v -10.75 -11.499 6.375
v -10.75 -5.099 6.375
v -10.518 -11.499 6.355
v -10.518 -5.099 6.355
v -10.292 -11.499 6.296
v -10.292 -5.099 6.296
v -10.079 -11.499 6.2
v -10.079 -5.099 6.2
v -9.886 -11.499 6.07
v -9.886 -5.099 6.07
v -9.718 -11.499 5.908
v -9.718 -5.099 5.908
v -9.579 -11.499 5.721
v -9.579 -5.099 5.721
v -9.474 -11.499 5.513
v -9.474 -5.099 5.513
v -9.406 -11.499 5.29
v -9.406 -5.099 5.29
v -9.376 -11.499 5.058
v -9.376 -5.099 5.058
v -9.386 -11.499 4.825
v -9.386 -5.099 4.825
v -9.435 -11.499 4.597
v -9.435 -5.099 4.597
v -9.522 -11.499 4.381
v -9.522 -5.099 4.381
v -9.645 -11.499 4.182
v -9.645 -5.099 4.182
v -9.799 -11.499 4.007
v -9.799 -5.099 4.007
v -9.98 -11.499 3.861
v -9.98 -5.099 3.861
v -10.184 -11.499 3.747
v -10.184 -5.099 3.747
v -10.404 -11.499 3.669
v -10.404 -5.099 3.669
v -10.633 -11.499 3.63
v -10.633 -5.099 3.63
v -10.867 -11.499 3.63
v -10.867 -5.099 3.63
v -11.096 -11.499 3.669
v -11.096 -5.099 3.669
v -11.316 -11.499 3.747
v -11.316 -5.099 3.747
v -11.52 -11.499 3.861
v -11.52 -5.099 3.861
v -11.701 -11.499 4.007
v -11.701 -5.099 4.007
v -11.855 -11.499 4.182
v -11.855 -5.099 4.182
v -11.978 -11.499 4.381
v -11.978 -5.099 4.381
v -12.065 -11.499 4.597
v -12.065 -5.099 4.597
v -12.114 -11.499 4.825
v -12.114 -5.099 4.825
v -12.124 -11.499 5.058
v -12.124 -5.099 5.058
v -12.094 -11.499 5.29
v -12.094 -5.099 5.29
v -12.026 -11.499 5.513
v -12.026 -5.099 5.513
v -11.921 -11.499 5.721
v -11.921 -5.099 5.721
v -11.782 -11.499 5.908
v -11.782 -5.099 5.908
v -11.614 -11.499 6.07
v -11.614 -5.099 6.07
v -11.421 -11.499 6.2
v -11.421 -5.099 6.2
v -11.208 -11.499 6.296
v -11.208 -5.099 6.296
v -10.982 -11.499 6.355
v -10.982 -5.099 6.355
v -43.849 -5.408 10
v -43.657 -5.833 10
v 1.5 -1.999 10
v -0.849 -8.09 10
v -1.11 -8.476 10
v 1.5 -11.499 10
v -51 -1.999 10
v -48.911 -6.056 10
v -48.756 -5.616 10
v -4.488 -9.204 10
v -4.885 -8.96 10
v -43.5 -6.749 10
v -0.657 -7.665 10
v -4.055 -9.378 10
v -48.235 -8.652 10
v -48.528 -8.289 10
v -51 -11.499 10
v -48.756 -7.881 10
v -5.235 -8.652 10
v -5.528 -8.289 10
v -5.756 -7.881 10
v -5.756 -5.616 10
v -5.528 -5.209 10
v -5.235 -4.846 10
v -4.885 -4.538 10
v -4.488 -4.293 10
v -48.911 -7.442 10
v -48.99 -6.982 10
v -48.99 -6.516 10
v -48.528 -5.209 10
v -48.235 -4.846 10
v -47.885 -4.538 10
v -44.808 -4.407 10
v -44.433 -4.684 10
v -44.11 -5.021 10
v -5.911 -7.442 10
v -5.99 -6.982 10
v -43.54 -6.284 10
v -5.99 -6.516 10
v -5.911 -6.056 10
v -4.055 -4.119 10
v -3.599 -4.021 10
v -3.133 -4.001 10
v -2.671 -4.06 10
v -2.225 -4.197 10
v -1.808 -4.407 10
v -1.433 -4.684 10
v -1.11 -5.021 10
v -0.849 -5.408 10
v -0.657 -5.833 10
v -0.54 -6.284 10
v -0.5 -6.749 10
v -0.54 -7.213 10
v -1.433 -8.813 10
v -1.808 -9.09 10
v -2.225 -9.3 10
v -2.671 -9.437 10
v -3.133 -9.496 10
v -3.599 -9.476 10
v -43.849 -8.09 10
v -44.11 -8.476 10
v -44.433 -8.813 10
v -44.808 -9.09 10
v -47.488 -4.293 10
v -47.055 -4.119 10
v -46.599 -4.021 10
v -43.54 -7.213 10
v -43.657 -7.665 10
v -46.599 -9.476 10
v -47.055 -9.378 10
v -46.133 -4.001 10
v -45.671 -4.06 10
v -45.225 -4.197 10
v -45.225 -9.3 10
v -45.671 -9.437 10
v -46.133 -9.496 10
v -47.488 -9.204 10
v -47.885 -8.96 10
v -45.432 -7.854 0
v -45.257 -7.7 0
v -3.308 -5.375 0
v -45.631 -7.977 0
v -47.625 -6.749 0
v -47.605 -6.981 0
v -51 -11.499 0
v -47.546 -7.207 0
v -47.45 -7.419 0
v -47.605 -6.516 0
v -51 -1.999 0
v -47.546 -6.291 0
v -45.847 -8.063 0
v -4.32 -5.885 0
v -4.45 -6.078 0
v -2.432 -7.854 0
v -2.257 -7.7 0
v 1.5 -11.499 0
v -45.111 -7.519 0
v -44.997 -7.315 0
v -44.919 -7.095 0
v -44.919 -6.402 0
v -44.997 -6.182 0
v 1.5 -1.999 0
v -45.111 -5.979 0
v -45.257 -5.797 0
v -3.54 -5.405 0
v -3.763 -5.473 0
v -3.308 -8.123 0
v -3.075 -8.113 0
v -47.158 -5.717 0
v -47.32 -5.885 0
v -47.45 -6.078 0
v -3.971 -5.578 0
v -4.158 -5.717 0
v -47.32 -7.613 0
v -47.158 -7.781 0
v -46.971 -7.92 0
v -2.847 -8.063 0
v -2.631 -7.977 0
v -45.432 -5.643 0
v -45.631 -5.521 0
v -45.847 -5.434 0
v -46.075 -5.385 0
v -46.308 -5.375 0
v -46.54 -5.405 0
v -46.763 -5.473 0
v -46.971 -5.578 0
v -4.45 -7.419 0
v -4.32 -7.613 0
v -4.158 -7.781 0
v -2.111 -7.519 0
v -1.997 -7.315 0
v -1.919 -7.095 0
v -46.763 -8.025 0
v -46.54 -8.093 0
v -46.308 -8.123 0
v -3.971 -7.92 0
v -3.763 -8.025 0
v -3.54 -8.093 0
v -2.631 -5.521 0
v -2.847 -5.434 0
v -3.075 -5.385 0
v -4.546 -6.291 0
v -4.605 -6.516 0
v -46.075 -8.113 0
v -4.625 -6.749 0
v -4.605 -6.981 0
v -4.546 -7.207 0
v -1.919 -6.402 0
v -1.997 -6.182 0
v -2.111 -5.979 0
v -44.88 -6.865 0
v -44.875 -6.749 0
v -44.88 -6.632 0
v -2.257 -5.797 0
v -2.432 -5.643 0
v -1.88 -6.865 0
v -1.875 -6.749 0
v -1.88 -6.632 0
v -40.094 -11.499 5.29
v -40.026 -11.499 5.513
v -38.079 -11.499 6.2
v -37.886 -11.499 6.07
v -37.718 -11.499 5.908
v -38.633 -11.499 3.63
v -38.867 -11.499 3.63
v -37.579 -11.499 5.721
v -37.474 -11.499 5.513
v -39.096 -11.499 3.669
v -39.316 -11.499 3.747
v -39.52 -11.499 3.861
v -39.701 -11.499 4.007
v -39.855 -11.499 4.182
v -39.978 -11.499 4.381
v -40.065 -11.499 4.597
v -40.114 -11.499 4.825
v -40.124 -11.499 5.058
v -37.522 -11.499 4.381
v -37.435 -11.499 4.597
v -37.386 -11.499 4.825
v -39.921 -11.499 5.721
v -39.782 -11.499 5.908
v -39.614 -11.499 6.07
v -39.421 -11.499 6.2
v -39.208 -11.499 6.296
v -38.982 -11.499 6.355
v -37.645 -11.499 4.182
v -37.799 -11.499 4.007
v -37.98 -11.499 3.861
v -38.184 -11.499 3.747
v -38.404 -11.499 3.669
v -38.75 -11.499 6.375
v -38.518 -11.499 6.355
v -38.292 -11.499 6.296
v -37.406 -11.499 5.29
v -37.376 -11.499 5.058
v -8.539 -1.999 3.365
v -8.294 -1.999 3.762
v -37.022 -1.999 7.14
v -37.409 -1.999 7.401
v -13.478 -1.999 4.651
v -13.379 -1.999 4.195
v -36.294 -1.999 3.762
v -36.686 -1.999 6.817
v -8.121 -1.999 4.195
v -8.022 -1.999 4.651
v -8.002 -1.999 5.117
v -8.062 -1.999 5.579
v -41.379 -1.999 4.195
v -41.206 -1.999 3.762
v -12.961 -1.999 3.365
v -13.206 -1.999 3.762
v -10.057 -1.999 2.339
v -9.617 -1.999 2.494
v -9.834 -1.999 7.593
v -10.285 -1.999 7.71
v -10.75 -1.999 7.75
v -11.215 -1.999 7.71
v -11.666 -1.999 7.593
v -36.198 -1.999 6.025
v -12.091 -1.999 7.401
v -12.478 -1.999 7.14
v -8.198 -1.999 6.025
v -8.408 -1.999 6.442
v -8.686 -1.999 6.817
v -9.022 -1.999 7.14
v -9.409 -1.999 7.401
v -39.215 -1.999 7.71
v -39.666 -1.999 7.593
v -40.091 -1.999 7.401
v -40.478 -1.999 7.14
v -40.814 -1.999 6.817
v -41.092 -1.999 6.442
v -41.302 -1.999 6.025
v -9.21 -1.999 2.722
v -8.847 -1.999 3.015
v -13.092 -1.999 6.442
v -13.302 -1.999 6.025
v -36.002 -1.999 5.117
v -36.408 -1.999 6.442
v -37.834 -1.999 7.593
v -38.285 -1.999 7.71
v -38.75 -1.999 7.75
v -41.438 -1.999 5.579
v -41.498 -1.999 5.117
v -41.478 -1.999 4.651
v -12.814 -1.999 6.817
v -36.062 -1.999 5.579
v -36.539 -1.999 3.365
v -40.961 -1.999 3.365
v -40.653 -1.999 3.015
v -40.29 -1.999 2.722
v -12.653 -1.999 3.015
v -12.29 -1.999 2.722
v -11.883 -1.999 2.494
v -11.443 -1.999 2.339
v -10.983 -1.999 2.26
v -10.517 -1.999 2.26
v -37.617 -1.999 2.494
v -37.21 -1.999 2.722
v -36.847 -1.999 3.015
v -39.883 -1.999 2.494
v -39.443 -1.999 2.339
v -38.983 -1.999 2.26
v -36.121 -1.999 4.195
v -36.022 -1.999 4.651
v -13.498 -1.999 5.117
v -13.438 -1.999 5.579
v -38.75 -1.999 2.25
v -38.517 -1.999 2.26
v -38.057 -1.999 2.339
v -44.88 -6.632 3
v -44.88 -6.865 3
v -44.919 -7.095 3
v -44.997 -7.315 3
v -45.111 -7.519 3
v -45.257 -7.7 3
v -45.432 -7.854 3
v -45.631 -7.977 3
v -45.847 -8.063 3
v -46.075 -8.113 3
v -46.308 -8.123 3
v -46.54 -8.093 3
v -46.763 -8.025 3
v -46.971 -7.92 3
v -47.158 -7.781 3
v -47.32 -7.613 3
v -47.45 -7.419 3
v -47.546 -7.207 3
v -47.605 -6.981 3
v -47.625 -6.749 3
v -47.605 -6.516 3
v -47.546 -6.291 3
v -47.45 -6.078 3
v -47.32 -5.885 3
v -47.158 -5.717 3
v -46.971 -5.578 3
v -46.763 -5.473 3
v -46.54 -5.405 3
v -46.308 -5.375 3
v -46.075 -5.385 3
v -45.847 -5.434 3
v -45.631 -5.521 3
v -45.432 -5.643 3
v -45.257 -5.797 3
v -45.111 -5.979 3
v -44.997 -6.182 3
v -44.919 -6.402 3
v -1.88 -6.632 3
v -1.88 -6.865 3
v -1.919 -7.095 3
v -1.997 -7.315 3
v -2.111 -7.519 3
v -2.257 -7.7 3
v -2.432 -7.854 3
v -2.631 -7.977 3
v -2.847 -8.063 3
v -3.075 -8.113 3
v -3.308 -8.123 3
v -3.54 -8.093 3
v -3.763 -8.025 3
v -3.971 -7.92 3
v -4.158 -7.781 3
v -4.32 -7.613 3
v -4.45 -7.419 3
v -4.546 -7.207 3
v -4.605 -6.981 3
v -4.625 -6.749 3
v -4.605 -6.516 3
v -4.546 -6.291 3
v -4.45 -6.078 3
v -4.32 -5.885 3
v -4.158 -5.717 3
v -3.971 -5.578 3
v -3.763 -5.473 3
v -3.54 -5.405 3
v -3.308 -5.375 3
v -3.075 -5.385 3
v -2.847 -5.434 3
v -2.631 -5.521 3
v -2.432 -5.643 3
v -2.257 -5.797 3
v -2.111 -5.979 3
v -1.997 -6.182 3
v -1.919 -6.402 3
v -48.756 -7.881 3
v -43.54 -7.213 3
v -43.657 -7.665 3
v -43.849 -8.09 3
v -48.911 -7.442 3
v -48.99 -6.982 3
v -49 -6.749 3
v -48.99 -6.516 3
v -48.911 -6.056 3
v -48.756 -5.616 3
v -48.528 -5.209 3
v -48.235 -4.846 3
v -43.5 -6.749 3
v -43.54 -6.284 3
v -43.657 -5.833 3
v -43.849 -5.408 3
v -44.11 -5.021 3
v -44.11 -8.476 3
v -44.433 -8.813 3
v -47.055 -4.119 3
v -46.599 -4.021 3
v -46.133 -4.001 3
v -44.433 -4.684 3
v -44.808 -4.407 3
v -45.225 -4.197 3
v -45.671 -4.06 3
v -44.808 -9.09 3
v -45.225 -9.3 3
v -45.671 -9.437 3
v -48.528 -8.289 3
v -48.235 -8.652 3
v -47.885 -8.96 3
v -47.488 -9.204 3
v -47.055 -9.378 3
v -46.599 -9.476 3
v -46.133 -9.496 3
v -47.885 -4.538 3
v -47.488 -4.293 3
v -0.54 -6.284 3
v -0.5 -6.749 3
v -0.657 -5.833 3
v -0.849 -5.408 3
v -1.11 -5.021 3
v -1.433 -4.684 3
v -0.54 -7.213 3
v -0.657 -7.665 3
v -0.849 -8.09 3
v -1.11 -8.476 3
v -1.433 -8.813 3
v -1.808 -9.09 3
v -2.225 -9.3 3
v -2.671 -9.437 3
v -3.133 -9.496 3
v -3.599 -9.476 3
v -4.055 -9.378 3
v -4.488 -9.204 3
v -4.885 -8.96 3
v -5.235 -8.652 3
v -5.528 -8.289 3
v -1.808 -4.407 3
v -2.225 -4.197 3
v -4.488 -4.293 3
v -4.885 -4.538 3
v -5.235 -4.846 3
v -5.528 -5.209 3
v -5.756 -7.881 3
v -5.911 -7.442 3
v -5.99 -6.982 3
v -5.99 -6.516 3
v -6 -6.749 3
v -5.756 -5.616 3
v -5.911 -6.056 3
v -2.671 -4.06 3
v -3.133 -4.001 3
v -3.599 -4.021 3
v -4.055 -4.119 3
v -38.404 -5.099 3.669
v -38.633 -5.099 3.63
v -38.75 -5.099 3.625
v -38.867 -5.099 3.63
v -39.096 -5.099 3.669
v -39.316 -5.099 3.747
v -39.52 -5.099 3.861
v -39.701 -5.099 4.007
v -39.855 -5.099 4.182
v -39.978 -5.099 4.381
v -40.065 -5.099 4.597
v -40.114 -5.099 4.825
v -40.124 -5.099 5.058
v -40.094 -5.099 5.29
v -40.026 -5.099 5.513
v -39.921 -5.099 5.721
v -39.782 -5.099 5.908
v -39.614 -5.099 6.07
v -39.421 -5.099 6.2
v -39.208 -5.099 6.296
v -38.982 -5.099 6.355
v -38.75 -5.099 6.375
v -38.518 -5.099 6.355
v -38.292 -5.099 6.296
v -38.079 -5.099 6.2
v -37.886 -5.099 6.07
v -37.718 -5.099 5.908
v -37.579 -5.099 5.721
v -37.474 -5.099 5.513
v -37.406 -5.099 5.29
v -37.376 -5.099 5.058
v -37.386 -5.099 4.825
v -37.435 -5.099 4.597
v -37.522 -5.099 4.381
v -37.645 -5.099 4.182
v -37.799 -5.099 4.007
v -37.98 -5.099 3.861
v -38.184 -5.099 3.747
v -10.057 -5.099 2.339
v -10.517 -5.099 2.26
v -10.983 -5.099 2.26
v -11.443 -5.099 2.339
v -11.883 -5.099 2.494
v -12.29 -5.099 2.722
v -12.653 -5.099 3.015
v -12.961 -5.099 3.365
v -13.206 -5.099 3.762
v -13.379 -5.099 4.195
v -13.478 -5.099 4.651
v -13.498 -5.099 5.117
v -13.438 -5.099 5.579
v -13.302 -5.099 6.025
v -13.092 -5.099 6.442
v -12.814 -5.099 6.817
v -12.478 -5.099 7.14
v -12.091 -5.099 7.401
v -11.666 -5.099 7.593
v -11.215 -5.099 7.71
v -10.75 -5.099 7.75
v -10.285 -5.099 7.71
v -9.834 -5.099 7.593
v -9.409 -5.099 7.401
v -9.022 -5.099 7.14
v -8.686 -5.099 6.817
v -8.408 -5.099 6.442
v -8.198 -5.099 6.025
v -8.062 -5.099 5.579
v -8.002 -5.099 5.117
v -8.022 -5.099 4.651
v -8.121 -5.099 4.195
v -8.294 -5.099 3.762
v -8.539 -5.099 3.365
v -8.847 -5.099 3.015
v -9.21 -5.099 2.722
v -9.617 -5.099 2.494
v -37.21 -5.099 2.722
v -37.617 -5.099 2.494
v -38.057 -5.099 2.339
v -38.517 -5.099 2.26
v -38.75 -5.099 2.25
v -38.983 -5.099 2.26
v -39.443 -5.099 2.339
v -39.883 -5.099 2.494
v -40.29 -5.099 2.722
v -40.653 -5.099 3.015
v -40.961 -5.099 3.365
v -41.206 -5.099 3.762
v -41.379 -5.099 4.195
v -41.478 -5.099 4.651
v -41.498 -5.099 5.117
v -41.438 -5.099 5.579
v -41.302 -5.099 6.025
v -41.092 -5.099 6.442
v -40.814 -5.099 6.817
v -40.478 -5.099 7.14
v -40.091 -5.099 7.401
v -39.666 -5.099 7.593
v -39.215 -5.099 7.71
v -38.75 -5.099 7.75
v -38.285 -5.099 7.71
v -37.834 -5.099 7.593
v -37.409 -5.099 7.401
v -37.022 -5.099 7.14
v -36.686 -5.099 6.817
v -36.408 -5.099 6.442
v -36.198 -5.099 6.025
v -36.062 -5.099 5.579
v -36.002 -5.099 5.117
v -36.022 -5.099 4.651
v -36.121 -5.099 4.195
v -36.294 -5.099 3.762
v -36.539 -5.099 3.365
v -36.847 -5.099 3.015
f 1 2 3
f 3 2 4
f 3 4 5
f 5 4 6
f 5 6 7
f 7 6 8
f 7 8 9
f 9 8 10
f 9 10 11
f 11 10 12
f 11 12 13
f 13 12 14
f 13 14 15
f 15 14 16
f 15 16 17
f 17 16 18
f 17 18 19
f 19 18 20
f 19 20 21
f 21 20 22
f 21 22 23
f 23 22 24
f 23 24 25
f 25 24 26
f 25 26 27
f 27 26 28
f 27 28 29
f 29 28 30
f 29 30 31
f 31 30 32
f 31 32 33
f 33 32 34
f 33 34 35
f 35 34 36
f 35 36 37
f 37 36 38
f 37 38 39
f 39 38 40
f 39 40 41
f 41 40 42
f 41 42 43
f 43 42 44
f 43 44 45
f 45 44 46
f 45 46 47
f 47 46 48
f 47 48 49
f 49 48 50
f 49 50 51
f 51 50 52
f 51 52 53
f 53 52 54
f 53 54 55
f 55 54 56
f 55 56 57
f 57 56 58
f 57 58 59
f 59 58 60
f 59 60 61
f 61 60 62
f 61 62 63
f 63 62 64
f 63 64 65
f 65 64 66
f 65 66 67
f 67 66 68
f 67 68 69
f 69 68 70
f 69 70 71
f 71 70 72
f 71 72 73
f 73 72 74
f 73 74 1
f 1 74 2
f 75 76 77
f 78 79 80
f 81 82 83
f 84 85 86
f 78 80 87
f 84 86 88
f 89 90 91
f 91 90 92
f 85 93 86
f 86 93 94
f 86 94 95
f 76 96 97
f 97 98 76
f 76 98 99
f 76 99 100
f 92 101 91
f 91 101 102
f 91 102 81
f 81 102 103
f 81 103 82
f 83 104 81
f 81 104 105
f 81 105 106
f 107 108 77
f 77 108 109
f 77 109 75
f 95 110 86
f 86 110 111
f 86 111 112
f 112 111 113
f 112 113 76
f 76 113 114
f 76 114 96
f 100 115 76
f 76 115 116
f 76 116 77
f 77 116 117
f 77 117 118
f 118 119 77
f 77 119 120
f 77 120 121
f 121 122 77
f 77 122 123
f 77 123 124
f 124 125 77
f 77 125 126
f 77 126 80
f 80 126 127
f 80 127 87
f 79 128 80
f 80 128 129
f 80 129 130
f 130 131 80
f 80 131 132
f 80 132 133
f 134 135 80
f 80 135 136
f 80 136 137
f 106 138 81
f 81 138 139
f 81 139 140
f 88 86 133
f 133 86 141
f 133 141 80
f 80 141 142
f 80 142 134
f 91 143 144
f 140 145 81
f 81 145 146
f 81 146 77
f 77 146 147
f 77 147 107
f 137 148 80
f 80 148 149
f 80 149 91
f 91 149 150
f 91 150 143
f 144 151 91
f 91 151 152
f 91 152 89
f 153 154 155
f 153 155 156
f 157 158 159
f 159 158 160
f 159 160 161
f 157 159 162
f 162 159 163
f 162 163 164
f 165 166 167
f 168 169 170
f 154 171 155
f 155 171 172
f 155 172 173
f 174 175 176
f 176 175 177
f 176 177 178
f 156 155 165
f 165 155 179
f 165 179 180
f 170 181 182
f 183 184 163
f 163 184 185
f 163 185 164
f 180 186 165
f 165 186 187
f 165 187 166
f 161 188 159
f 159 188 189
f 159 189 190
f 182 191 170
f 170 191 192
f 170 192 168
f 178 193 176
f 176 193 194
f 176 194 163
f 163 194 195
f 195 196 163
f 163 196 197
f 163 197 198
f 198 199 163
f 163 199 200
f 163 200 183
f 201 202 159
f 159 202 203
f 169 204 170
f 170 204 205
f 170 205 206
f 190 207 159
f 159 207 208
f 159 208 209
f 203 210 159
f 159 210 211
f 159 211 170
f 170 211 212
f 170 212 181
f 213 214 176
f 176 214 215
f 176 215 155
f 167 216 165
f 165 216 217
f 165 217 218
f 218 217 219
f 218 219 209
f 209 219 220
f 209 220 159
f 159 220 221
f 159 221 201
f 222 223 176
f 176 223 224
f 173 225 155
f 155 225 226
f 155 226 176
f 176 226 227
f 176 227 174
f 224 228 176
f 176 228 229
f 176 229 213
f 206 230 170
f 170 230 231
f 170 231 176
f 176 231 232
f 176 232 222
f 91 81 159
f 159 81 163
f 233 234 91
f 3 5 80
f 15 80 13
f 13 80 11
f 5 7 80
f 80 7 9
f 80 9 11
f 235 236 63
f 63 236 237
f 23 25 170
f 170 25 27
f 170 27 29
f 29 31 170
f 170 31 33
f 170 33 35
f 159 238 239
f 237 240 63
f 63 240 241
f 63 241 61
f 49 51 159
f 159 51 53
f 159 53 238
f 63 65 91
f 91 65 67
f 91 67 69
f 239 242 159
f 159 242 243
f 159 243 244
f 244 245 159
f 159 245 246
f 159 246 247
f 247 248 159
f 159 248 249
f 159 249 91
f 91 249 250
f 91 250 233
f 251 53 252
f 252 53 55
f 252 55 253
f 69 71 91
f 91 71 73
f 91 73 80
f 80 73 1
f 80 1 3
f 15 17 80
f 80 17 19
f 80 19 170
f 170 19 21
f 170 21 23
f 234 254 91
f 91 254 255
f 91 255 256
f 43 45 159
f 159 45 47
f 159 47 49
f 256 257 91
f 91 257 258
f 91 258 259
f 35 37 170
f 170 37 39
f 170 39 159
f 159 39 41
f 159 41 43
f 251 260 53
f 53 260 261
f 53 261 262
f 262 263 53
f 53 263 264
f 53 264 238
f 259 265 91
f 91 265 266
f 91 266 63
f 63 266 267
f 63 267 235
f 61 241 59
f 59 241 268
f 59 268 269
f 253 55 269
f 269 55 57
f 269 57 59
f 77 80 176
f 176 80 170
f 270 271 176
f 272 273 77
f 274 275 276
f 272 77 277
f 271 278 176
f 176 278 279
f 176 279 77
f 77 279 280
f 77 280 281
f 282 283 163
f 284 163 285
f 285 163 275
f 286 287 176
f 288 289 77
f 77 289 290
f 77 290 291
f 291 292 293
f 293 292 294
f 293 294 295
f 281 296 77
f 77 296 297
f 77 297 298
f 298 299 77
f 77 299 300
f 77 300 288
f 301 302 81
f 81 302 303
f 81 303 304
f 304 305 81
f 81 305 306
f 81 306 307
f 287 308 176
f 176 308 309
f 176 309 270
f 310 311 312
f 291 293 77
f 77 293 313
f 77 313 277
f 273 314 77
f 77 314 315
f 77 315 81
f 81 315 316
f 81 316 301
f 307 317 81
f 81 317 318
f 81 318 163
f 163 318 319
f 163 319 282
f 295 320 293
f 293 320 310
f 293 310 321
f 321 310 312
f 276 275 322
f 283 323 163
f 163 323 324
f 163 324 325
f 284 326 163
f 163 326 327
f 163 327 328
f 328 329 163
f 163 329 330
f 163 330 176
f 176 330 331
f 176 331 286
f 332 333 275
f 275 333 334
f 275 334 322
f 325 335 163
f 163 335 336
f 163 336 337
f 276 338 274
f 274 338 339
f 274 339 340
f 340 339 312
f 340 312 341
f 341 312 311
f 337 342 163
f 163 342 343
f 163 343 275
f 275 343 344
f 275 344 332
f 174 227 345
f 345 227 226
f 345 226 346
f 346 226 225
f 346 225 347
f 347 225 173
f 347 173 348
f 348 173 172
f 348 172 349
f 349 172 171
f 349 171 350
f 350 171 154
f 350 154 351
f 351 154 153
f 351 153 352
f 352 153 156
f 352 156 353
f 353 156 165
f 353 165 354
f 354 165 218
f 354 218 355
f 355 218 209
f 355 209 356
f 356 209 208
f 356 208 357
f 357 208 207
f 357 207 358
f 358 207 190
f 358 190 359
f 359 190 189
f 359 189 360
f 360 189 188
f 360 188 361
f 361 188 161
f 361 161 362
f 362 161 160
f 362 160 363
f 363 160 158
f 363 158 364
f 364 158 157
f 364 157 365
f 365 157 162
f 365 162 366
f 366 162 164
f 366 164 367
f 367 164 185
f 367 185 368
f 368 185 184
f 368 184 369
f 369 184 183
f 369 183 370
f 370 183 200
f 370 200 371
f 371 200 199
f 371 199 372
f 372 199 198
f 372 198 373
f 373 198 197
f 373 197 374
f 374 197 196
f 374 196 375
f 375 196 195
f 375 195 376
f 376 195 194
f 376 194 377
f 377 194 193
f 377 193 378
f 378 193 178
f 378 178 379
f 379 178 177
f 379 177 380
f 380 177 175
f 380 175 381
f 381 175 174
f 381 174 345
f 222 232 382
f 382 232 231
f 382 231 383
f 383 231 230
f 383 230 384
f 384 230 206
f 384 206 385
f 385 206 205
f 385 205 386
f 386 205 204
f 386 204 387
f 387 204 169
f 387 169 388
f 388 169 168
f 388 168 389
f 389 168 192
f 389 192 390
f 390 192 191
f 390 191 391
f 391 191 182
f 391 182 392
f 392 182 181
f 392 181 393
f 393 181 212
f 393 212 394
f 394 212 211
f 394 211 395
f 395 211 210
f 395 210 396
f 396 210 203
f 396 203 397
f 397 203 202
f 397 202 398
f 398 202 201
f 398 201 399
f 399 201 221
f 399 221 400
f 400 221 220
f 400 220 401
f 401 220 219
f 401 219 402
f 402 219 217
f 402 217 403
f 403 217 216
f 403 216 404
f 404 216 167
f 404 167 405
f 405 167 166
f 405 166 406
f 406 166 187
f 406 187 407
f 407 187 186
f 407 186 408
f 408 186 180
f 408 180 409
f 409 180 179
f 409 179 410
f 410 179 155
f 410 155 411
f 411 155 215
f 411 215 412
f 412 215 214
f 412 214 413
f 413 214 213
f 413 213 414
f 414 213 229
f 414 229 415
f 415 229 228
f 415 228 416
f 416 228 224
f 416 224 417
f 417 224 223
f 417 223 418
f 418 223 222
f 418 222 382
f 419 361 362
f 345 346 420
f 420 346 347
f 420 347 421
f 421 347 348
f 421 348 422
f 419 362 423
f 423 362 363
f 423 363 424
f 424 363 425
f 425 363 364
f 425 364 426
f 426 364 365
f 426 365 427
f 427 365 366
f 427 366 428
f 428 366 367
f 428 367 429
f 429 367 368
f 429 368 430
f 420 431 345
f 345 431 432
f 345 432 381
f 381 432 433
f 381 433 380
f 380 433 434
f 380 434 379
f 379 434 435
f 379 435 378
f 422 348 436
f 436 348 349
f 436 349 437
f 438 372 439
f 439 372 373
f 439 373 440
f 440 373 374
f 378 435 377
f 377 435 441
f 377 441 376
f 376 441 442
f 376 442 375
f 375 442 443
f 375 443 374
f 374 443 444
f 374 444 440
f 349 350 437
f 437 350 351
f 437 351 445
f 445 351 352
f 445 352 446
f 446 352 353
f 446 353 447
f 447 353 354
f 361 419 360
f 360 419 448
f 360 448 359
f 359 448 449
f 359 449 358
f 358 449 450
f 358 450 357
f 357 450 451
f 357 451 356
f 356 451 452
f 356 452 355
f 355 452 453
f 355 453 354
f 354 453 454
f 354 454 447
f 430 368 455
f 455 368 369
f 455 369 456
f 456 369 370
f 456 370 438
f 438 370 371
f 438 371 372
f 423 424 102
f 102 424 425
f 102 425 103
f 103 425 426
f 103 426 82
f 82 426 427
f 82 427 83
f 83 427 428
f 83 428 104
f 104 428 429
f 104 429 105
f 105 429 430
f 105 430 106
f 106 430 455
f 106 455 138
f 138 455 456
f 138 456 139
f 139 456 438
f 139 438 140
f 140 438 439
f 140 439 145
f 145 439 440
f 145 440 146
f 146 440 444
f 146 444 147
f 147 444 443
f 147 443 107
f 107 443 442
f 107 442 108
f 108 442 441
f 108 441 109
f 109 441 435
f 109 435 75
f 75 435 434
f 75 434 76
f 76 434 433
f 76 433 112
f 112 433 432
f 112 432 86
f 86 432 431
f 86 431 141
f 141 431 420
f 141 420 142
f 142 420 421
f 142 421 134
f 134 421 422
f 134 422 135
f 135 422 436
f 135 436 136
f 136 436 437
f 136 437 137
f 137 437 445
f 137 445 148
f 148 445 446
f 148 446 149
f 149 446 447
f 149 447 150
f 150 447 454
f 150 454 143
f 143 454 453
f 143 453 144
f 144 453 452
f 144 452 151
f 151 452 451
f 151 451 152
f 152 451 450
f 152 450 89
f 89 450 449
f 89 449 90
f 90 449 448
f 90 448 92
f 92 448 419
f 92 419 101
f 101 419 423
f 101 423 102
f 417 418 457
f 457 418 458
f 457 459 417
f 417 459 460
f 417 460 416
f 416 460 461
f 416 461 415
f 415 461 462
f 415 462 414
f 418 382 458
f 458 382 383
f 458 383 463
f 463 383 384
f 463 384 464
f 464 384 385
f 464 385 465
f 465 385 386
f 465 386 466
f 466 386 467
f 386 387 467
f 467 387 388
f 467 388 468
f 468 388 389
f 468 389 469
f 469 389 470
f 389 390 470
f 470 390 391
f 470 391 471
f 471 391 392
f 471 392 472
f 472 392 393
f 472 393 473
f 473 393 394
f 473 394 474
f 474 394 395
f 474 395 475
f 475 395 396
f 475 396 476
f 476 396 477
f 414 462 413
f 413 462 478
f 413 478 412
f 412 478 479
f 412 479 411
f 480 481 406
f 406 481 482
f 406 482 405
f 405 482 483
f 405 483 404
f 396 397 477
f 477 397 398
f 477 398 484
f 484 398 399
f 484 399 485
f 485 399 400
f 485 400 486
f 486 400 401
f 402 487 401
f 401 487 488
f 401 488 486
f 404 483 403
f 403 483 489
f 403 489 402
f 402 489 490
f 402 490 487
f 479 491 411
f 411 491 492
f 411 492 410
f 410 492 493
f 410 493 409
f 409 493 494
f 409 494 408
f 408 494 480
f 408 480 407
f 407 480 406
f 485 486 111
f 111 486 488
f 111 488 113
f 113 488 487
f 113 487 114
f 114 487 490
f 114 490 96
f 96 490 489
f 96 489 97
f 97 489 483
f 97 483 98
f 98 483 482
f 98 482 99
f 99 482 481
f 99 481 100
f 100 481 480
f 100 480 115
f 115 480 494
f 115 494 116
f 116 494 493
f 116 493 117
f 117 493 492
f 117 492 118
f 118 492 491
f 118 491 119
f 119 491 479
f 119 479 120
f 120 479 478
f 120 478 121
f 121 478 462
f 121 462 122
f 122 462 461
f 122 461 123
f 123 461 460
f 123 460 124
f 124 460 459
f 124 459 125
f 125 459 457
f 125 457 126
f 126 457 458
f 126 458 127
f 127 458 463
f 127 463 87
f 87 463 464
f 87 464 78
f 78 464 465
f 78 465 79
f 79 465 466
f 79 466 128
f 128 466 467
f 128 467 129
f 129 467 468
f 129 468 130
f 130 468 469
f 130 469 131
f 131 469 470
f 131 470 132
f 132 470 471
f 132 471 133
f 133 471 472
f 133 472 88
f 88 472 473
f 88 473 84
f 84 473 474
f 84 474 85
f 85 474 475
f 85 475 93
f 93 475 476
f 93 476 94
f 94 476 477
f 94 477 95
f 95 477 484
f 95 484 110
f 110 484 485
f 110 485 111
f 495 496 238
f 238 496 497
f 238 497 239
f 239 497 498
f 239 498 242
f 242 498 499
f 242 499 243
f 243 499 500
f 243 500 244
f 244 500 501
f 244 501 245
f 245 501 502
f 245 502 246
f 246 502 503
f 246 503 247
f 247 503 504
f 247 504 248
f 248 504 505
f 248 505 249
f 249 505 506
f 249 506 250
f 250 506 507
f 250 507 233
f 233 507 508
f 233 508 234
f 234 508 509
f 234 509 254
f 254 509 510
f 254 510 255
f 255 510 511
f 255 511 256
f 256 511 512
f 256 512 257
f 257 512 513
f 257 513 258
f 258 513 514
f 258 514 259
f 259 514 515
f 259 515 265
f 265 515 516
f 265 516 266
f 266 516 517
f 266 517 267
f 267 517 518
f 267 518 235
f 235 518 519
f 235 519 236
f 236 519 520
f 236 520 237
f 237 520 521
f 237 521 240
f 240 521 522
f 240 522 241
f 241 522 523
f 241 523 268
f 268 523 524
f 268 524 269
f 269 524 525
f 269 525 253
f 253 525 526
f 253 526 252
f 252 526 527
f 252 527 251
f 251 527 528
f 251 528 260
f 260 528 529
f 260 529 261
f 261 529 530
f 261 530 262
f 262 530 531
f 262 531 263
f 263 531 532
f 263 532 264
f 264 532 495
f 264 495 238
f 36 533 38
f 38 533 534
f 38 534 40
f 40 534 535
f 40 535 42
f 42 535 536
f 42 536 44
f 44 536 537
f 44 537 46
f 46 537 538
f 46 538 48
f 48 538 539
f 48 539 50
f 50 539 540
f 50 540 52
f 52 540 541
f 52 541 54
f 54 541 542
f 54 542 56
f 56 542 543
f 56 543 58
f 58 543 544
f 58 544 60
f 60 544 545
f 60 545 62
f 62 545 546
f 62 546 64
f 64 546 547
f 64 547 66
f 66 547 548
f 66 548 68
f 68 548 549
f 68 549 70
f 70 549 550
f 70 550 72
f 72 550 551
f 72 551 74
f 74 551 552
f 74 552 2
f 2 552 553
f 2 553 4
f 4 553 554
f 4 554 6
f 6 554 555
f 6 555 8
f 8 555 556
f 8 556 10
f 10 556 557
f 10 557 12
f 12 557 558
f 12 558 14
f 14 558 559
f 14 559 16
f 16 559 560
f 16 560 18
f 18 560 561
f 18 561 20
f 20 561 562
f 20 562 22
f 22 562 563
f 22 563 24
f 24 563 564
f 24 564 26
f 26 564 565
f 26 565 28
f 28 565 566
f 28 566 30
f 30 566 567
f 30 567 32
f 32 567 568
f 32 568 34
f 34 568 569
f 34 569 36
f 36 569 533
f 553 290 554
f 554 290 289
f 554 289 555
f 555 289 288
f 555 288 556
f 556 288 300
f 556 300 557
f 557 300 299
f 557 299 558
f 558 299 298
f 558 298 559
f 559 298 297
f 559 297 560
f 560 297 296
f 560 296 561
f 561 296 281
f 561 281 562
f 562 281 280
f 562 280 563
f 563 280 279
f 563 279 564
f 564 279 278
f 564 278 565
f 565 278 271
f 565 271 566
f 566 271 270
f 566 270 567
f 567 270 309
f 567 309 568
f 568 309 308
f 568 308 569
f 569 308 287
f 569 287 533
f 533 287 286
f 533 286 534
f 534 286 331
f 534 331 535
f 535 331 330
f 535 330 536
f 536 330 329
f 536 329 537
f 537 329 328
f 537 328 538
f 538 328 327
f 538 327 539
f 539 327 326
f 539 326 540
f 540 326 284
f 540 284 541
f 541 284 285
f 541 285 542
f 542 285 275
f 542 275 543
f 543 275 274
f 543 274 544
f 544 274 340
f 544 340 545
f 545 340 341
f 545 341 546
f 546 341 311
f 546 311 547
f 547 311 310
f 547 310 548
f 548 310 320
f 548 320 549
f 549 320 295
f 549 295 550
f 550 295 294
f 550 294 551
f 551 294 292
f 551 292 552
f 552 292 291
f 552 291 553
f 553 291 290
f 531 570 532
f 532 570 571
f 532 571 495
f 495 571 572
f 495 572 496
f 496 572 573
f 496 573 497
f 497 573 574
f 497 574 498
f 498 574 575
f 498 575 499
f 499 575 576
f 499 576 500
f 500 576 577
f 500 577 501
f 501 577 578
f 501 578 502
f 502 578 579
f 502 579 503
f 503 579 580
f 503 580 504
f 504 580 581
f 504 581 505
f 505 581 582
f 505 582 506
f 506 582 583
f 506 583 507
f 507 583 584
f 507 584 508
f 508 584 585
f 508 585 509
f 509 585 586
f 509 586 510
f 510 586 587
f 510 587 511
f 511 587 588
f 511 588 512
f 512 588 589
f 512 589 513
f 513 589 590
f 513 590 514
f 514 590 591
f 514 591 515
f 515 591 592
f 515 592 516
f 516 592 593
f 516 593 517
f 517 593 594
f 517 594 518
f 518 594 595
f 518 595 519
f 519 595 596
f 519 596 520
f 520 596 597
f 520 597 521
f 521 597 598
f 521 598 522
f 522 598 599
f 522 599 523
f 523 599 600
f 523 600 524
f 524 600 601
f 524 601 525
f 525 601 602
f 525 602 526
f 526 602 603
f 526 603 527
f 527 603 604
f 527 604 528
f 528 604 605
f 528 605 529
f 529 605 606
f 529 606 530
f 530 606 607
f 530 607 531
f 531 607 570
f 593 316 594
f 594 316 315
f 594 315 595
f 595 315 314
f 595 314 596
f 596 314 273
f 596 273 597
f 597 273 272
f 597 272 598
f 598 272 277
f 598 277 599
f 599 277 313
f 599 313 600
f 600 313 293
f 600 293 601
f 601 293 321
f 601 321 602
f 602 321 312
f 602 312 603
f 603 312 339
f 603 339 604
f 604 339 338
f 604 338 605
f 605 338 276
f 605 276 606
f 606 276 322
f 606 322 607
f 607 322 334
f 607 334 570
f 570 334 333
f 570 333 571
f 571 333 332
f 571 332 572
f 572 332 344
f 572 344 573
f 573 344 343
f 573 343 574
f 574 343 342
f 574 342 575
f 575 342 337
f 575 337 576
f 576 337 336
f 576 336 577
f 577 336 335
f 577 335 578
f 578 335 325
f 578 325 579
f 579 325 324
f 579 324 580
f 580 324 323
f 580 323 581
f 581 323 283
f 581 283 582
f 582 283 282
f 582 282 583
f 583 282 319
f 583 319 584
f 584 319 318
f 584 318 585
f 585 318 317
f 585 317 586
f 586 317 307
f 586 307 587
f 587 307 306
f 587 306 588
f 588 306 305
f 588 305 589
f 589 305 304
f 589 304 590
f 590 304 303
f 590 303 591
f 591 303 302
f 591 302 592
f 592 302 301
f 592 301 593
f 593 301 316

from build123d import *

# Parameters (mm, degrees)
SKETCH1_W           = 52.5
SKETCH1_H           = 9.5
SKETCH1_R           = 1.375
BOSS_EXTRUDE1_DEPTH = 10
SKETCH4_R           = 2.75
CUT_EXTRUDE3_DEPTH  = 7
CUT_EXTRUDE1_REACH  = 54.832
SKETCH2_R           = 1.375
SKETCH3_R           = 2.75
CUT_EXTRUDE2_DEPTH  = 3.1


with BuildPart() as part:
    # Sketch1 → Boss-Extrude1 (new body)
    with BuildSketch(Plane.XY):
        with Locations((-24.75, -6.748746096)):
            Rectangle(SKETCH1_W, SKETCH1_H)
        with Locations((-46.25, -6.748746096)):
            Circle(SKETCH1_R, mode=Mode.SUBTRACT)
        with Locations((-3.25, -6.748746096)):
            Circle(SKETCH1_R, mode=Mode.SUBTRACT)
    extrude(amount=BOSS_EXTRUDE1_DEPTH)

    # Sketch4 → Cut-Extrude3 (cut)
    with BuildSketch(Plane.XY.offset(10)):
        with Locations((-46.25, -6.748746096)):
            Circle(SKETCH4_R)
        with Locations((-3.25, -6.748746096)):
            Circle(SKETCH4_R)
    extrude(amount=-CUT_EXTRUDE3_DEPTH, mode=Mode.SUBTRACT)

    # Sketch2 → Cut-Extrude1 (cut, up to next)
    with BuildSketch(Plane(origin=(0, -1.998746096, 0), x_dir=(1, 0, 0), z_dir=(0, 1, 0)), mode=Mode.PRIVATE) as cut_extrude1_sk1:
        with Locations(Location((-10.75, -5, 0), (0, 0, 270))):
            Circle(SKETCH2_R)
    cut_extrude1_tool1 = extrude(cut_extrude1_sk1.sketch, amount=-CUT_EXTRUDE1_REACH, mode=Mode.PRIVATE) & part.part
    # Sketch2 → Cut-Extrude1 (cut, up to next)
    with BuildSketch(Plane(origin=(0, -1.998746096, 0), x_dir=(1, 0, 0), z_dir=(0, 1, 0)), mode=Mode.PRIVATE) as cut_extrude1_sk2:
        with Locations(Location((-38.75, -5, 0), (0, 0, 270))):
            Circle(SKETCH2_R)
    cut_extrude1_tool2 = extrude(cut_extrude1_sk2.sketch, amount=-CUT_EXTRUDE1_REACH, mode=Mode.PRIVATE) & part.part
    add(cut_extrude1_tool1.solids().sort_by_distance((-10.75, -1.998746, 5))[0], mode=Mode.SUBTRACT)
    add(cut_extrude1_tool2.solids().sort_by_distance((-38.75, -1.998746, 5))[0], mode=Mode.SUBTRACT)

    # Sketch3 → Cut-Extrude2 (cut)
    with BuildSketch(Plane(origin=(0, -1.998746096, 0), x_dir=(1, 0, 0), z_dir=(0, 1, 0))):
        with Locations(Location((-10.75, -5, 0), (0, 0, 270))):
            Circle(SKETCH3_R)
        with Locations(Location((-38.75, -5, 0), (0, 0, 270))):
            Circle(SKETCH3_R)
    extrude(amount=-CUT_EXTRUDE2_DEPTH, mode=Mode.SUBTRACT)


solid = part.part
